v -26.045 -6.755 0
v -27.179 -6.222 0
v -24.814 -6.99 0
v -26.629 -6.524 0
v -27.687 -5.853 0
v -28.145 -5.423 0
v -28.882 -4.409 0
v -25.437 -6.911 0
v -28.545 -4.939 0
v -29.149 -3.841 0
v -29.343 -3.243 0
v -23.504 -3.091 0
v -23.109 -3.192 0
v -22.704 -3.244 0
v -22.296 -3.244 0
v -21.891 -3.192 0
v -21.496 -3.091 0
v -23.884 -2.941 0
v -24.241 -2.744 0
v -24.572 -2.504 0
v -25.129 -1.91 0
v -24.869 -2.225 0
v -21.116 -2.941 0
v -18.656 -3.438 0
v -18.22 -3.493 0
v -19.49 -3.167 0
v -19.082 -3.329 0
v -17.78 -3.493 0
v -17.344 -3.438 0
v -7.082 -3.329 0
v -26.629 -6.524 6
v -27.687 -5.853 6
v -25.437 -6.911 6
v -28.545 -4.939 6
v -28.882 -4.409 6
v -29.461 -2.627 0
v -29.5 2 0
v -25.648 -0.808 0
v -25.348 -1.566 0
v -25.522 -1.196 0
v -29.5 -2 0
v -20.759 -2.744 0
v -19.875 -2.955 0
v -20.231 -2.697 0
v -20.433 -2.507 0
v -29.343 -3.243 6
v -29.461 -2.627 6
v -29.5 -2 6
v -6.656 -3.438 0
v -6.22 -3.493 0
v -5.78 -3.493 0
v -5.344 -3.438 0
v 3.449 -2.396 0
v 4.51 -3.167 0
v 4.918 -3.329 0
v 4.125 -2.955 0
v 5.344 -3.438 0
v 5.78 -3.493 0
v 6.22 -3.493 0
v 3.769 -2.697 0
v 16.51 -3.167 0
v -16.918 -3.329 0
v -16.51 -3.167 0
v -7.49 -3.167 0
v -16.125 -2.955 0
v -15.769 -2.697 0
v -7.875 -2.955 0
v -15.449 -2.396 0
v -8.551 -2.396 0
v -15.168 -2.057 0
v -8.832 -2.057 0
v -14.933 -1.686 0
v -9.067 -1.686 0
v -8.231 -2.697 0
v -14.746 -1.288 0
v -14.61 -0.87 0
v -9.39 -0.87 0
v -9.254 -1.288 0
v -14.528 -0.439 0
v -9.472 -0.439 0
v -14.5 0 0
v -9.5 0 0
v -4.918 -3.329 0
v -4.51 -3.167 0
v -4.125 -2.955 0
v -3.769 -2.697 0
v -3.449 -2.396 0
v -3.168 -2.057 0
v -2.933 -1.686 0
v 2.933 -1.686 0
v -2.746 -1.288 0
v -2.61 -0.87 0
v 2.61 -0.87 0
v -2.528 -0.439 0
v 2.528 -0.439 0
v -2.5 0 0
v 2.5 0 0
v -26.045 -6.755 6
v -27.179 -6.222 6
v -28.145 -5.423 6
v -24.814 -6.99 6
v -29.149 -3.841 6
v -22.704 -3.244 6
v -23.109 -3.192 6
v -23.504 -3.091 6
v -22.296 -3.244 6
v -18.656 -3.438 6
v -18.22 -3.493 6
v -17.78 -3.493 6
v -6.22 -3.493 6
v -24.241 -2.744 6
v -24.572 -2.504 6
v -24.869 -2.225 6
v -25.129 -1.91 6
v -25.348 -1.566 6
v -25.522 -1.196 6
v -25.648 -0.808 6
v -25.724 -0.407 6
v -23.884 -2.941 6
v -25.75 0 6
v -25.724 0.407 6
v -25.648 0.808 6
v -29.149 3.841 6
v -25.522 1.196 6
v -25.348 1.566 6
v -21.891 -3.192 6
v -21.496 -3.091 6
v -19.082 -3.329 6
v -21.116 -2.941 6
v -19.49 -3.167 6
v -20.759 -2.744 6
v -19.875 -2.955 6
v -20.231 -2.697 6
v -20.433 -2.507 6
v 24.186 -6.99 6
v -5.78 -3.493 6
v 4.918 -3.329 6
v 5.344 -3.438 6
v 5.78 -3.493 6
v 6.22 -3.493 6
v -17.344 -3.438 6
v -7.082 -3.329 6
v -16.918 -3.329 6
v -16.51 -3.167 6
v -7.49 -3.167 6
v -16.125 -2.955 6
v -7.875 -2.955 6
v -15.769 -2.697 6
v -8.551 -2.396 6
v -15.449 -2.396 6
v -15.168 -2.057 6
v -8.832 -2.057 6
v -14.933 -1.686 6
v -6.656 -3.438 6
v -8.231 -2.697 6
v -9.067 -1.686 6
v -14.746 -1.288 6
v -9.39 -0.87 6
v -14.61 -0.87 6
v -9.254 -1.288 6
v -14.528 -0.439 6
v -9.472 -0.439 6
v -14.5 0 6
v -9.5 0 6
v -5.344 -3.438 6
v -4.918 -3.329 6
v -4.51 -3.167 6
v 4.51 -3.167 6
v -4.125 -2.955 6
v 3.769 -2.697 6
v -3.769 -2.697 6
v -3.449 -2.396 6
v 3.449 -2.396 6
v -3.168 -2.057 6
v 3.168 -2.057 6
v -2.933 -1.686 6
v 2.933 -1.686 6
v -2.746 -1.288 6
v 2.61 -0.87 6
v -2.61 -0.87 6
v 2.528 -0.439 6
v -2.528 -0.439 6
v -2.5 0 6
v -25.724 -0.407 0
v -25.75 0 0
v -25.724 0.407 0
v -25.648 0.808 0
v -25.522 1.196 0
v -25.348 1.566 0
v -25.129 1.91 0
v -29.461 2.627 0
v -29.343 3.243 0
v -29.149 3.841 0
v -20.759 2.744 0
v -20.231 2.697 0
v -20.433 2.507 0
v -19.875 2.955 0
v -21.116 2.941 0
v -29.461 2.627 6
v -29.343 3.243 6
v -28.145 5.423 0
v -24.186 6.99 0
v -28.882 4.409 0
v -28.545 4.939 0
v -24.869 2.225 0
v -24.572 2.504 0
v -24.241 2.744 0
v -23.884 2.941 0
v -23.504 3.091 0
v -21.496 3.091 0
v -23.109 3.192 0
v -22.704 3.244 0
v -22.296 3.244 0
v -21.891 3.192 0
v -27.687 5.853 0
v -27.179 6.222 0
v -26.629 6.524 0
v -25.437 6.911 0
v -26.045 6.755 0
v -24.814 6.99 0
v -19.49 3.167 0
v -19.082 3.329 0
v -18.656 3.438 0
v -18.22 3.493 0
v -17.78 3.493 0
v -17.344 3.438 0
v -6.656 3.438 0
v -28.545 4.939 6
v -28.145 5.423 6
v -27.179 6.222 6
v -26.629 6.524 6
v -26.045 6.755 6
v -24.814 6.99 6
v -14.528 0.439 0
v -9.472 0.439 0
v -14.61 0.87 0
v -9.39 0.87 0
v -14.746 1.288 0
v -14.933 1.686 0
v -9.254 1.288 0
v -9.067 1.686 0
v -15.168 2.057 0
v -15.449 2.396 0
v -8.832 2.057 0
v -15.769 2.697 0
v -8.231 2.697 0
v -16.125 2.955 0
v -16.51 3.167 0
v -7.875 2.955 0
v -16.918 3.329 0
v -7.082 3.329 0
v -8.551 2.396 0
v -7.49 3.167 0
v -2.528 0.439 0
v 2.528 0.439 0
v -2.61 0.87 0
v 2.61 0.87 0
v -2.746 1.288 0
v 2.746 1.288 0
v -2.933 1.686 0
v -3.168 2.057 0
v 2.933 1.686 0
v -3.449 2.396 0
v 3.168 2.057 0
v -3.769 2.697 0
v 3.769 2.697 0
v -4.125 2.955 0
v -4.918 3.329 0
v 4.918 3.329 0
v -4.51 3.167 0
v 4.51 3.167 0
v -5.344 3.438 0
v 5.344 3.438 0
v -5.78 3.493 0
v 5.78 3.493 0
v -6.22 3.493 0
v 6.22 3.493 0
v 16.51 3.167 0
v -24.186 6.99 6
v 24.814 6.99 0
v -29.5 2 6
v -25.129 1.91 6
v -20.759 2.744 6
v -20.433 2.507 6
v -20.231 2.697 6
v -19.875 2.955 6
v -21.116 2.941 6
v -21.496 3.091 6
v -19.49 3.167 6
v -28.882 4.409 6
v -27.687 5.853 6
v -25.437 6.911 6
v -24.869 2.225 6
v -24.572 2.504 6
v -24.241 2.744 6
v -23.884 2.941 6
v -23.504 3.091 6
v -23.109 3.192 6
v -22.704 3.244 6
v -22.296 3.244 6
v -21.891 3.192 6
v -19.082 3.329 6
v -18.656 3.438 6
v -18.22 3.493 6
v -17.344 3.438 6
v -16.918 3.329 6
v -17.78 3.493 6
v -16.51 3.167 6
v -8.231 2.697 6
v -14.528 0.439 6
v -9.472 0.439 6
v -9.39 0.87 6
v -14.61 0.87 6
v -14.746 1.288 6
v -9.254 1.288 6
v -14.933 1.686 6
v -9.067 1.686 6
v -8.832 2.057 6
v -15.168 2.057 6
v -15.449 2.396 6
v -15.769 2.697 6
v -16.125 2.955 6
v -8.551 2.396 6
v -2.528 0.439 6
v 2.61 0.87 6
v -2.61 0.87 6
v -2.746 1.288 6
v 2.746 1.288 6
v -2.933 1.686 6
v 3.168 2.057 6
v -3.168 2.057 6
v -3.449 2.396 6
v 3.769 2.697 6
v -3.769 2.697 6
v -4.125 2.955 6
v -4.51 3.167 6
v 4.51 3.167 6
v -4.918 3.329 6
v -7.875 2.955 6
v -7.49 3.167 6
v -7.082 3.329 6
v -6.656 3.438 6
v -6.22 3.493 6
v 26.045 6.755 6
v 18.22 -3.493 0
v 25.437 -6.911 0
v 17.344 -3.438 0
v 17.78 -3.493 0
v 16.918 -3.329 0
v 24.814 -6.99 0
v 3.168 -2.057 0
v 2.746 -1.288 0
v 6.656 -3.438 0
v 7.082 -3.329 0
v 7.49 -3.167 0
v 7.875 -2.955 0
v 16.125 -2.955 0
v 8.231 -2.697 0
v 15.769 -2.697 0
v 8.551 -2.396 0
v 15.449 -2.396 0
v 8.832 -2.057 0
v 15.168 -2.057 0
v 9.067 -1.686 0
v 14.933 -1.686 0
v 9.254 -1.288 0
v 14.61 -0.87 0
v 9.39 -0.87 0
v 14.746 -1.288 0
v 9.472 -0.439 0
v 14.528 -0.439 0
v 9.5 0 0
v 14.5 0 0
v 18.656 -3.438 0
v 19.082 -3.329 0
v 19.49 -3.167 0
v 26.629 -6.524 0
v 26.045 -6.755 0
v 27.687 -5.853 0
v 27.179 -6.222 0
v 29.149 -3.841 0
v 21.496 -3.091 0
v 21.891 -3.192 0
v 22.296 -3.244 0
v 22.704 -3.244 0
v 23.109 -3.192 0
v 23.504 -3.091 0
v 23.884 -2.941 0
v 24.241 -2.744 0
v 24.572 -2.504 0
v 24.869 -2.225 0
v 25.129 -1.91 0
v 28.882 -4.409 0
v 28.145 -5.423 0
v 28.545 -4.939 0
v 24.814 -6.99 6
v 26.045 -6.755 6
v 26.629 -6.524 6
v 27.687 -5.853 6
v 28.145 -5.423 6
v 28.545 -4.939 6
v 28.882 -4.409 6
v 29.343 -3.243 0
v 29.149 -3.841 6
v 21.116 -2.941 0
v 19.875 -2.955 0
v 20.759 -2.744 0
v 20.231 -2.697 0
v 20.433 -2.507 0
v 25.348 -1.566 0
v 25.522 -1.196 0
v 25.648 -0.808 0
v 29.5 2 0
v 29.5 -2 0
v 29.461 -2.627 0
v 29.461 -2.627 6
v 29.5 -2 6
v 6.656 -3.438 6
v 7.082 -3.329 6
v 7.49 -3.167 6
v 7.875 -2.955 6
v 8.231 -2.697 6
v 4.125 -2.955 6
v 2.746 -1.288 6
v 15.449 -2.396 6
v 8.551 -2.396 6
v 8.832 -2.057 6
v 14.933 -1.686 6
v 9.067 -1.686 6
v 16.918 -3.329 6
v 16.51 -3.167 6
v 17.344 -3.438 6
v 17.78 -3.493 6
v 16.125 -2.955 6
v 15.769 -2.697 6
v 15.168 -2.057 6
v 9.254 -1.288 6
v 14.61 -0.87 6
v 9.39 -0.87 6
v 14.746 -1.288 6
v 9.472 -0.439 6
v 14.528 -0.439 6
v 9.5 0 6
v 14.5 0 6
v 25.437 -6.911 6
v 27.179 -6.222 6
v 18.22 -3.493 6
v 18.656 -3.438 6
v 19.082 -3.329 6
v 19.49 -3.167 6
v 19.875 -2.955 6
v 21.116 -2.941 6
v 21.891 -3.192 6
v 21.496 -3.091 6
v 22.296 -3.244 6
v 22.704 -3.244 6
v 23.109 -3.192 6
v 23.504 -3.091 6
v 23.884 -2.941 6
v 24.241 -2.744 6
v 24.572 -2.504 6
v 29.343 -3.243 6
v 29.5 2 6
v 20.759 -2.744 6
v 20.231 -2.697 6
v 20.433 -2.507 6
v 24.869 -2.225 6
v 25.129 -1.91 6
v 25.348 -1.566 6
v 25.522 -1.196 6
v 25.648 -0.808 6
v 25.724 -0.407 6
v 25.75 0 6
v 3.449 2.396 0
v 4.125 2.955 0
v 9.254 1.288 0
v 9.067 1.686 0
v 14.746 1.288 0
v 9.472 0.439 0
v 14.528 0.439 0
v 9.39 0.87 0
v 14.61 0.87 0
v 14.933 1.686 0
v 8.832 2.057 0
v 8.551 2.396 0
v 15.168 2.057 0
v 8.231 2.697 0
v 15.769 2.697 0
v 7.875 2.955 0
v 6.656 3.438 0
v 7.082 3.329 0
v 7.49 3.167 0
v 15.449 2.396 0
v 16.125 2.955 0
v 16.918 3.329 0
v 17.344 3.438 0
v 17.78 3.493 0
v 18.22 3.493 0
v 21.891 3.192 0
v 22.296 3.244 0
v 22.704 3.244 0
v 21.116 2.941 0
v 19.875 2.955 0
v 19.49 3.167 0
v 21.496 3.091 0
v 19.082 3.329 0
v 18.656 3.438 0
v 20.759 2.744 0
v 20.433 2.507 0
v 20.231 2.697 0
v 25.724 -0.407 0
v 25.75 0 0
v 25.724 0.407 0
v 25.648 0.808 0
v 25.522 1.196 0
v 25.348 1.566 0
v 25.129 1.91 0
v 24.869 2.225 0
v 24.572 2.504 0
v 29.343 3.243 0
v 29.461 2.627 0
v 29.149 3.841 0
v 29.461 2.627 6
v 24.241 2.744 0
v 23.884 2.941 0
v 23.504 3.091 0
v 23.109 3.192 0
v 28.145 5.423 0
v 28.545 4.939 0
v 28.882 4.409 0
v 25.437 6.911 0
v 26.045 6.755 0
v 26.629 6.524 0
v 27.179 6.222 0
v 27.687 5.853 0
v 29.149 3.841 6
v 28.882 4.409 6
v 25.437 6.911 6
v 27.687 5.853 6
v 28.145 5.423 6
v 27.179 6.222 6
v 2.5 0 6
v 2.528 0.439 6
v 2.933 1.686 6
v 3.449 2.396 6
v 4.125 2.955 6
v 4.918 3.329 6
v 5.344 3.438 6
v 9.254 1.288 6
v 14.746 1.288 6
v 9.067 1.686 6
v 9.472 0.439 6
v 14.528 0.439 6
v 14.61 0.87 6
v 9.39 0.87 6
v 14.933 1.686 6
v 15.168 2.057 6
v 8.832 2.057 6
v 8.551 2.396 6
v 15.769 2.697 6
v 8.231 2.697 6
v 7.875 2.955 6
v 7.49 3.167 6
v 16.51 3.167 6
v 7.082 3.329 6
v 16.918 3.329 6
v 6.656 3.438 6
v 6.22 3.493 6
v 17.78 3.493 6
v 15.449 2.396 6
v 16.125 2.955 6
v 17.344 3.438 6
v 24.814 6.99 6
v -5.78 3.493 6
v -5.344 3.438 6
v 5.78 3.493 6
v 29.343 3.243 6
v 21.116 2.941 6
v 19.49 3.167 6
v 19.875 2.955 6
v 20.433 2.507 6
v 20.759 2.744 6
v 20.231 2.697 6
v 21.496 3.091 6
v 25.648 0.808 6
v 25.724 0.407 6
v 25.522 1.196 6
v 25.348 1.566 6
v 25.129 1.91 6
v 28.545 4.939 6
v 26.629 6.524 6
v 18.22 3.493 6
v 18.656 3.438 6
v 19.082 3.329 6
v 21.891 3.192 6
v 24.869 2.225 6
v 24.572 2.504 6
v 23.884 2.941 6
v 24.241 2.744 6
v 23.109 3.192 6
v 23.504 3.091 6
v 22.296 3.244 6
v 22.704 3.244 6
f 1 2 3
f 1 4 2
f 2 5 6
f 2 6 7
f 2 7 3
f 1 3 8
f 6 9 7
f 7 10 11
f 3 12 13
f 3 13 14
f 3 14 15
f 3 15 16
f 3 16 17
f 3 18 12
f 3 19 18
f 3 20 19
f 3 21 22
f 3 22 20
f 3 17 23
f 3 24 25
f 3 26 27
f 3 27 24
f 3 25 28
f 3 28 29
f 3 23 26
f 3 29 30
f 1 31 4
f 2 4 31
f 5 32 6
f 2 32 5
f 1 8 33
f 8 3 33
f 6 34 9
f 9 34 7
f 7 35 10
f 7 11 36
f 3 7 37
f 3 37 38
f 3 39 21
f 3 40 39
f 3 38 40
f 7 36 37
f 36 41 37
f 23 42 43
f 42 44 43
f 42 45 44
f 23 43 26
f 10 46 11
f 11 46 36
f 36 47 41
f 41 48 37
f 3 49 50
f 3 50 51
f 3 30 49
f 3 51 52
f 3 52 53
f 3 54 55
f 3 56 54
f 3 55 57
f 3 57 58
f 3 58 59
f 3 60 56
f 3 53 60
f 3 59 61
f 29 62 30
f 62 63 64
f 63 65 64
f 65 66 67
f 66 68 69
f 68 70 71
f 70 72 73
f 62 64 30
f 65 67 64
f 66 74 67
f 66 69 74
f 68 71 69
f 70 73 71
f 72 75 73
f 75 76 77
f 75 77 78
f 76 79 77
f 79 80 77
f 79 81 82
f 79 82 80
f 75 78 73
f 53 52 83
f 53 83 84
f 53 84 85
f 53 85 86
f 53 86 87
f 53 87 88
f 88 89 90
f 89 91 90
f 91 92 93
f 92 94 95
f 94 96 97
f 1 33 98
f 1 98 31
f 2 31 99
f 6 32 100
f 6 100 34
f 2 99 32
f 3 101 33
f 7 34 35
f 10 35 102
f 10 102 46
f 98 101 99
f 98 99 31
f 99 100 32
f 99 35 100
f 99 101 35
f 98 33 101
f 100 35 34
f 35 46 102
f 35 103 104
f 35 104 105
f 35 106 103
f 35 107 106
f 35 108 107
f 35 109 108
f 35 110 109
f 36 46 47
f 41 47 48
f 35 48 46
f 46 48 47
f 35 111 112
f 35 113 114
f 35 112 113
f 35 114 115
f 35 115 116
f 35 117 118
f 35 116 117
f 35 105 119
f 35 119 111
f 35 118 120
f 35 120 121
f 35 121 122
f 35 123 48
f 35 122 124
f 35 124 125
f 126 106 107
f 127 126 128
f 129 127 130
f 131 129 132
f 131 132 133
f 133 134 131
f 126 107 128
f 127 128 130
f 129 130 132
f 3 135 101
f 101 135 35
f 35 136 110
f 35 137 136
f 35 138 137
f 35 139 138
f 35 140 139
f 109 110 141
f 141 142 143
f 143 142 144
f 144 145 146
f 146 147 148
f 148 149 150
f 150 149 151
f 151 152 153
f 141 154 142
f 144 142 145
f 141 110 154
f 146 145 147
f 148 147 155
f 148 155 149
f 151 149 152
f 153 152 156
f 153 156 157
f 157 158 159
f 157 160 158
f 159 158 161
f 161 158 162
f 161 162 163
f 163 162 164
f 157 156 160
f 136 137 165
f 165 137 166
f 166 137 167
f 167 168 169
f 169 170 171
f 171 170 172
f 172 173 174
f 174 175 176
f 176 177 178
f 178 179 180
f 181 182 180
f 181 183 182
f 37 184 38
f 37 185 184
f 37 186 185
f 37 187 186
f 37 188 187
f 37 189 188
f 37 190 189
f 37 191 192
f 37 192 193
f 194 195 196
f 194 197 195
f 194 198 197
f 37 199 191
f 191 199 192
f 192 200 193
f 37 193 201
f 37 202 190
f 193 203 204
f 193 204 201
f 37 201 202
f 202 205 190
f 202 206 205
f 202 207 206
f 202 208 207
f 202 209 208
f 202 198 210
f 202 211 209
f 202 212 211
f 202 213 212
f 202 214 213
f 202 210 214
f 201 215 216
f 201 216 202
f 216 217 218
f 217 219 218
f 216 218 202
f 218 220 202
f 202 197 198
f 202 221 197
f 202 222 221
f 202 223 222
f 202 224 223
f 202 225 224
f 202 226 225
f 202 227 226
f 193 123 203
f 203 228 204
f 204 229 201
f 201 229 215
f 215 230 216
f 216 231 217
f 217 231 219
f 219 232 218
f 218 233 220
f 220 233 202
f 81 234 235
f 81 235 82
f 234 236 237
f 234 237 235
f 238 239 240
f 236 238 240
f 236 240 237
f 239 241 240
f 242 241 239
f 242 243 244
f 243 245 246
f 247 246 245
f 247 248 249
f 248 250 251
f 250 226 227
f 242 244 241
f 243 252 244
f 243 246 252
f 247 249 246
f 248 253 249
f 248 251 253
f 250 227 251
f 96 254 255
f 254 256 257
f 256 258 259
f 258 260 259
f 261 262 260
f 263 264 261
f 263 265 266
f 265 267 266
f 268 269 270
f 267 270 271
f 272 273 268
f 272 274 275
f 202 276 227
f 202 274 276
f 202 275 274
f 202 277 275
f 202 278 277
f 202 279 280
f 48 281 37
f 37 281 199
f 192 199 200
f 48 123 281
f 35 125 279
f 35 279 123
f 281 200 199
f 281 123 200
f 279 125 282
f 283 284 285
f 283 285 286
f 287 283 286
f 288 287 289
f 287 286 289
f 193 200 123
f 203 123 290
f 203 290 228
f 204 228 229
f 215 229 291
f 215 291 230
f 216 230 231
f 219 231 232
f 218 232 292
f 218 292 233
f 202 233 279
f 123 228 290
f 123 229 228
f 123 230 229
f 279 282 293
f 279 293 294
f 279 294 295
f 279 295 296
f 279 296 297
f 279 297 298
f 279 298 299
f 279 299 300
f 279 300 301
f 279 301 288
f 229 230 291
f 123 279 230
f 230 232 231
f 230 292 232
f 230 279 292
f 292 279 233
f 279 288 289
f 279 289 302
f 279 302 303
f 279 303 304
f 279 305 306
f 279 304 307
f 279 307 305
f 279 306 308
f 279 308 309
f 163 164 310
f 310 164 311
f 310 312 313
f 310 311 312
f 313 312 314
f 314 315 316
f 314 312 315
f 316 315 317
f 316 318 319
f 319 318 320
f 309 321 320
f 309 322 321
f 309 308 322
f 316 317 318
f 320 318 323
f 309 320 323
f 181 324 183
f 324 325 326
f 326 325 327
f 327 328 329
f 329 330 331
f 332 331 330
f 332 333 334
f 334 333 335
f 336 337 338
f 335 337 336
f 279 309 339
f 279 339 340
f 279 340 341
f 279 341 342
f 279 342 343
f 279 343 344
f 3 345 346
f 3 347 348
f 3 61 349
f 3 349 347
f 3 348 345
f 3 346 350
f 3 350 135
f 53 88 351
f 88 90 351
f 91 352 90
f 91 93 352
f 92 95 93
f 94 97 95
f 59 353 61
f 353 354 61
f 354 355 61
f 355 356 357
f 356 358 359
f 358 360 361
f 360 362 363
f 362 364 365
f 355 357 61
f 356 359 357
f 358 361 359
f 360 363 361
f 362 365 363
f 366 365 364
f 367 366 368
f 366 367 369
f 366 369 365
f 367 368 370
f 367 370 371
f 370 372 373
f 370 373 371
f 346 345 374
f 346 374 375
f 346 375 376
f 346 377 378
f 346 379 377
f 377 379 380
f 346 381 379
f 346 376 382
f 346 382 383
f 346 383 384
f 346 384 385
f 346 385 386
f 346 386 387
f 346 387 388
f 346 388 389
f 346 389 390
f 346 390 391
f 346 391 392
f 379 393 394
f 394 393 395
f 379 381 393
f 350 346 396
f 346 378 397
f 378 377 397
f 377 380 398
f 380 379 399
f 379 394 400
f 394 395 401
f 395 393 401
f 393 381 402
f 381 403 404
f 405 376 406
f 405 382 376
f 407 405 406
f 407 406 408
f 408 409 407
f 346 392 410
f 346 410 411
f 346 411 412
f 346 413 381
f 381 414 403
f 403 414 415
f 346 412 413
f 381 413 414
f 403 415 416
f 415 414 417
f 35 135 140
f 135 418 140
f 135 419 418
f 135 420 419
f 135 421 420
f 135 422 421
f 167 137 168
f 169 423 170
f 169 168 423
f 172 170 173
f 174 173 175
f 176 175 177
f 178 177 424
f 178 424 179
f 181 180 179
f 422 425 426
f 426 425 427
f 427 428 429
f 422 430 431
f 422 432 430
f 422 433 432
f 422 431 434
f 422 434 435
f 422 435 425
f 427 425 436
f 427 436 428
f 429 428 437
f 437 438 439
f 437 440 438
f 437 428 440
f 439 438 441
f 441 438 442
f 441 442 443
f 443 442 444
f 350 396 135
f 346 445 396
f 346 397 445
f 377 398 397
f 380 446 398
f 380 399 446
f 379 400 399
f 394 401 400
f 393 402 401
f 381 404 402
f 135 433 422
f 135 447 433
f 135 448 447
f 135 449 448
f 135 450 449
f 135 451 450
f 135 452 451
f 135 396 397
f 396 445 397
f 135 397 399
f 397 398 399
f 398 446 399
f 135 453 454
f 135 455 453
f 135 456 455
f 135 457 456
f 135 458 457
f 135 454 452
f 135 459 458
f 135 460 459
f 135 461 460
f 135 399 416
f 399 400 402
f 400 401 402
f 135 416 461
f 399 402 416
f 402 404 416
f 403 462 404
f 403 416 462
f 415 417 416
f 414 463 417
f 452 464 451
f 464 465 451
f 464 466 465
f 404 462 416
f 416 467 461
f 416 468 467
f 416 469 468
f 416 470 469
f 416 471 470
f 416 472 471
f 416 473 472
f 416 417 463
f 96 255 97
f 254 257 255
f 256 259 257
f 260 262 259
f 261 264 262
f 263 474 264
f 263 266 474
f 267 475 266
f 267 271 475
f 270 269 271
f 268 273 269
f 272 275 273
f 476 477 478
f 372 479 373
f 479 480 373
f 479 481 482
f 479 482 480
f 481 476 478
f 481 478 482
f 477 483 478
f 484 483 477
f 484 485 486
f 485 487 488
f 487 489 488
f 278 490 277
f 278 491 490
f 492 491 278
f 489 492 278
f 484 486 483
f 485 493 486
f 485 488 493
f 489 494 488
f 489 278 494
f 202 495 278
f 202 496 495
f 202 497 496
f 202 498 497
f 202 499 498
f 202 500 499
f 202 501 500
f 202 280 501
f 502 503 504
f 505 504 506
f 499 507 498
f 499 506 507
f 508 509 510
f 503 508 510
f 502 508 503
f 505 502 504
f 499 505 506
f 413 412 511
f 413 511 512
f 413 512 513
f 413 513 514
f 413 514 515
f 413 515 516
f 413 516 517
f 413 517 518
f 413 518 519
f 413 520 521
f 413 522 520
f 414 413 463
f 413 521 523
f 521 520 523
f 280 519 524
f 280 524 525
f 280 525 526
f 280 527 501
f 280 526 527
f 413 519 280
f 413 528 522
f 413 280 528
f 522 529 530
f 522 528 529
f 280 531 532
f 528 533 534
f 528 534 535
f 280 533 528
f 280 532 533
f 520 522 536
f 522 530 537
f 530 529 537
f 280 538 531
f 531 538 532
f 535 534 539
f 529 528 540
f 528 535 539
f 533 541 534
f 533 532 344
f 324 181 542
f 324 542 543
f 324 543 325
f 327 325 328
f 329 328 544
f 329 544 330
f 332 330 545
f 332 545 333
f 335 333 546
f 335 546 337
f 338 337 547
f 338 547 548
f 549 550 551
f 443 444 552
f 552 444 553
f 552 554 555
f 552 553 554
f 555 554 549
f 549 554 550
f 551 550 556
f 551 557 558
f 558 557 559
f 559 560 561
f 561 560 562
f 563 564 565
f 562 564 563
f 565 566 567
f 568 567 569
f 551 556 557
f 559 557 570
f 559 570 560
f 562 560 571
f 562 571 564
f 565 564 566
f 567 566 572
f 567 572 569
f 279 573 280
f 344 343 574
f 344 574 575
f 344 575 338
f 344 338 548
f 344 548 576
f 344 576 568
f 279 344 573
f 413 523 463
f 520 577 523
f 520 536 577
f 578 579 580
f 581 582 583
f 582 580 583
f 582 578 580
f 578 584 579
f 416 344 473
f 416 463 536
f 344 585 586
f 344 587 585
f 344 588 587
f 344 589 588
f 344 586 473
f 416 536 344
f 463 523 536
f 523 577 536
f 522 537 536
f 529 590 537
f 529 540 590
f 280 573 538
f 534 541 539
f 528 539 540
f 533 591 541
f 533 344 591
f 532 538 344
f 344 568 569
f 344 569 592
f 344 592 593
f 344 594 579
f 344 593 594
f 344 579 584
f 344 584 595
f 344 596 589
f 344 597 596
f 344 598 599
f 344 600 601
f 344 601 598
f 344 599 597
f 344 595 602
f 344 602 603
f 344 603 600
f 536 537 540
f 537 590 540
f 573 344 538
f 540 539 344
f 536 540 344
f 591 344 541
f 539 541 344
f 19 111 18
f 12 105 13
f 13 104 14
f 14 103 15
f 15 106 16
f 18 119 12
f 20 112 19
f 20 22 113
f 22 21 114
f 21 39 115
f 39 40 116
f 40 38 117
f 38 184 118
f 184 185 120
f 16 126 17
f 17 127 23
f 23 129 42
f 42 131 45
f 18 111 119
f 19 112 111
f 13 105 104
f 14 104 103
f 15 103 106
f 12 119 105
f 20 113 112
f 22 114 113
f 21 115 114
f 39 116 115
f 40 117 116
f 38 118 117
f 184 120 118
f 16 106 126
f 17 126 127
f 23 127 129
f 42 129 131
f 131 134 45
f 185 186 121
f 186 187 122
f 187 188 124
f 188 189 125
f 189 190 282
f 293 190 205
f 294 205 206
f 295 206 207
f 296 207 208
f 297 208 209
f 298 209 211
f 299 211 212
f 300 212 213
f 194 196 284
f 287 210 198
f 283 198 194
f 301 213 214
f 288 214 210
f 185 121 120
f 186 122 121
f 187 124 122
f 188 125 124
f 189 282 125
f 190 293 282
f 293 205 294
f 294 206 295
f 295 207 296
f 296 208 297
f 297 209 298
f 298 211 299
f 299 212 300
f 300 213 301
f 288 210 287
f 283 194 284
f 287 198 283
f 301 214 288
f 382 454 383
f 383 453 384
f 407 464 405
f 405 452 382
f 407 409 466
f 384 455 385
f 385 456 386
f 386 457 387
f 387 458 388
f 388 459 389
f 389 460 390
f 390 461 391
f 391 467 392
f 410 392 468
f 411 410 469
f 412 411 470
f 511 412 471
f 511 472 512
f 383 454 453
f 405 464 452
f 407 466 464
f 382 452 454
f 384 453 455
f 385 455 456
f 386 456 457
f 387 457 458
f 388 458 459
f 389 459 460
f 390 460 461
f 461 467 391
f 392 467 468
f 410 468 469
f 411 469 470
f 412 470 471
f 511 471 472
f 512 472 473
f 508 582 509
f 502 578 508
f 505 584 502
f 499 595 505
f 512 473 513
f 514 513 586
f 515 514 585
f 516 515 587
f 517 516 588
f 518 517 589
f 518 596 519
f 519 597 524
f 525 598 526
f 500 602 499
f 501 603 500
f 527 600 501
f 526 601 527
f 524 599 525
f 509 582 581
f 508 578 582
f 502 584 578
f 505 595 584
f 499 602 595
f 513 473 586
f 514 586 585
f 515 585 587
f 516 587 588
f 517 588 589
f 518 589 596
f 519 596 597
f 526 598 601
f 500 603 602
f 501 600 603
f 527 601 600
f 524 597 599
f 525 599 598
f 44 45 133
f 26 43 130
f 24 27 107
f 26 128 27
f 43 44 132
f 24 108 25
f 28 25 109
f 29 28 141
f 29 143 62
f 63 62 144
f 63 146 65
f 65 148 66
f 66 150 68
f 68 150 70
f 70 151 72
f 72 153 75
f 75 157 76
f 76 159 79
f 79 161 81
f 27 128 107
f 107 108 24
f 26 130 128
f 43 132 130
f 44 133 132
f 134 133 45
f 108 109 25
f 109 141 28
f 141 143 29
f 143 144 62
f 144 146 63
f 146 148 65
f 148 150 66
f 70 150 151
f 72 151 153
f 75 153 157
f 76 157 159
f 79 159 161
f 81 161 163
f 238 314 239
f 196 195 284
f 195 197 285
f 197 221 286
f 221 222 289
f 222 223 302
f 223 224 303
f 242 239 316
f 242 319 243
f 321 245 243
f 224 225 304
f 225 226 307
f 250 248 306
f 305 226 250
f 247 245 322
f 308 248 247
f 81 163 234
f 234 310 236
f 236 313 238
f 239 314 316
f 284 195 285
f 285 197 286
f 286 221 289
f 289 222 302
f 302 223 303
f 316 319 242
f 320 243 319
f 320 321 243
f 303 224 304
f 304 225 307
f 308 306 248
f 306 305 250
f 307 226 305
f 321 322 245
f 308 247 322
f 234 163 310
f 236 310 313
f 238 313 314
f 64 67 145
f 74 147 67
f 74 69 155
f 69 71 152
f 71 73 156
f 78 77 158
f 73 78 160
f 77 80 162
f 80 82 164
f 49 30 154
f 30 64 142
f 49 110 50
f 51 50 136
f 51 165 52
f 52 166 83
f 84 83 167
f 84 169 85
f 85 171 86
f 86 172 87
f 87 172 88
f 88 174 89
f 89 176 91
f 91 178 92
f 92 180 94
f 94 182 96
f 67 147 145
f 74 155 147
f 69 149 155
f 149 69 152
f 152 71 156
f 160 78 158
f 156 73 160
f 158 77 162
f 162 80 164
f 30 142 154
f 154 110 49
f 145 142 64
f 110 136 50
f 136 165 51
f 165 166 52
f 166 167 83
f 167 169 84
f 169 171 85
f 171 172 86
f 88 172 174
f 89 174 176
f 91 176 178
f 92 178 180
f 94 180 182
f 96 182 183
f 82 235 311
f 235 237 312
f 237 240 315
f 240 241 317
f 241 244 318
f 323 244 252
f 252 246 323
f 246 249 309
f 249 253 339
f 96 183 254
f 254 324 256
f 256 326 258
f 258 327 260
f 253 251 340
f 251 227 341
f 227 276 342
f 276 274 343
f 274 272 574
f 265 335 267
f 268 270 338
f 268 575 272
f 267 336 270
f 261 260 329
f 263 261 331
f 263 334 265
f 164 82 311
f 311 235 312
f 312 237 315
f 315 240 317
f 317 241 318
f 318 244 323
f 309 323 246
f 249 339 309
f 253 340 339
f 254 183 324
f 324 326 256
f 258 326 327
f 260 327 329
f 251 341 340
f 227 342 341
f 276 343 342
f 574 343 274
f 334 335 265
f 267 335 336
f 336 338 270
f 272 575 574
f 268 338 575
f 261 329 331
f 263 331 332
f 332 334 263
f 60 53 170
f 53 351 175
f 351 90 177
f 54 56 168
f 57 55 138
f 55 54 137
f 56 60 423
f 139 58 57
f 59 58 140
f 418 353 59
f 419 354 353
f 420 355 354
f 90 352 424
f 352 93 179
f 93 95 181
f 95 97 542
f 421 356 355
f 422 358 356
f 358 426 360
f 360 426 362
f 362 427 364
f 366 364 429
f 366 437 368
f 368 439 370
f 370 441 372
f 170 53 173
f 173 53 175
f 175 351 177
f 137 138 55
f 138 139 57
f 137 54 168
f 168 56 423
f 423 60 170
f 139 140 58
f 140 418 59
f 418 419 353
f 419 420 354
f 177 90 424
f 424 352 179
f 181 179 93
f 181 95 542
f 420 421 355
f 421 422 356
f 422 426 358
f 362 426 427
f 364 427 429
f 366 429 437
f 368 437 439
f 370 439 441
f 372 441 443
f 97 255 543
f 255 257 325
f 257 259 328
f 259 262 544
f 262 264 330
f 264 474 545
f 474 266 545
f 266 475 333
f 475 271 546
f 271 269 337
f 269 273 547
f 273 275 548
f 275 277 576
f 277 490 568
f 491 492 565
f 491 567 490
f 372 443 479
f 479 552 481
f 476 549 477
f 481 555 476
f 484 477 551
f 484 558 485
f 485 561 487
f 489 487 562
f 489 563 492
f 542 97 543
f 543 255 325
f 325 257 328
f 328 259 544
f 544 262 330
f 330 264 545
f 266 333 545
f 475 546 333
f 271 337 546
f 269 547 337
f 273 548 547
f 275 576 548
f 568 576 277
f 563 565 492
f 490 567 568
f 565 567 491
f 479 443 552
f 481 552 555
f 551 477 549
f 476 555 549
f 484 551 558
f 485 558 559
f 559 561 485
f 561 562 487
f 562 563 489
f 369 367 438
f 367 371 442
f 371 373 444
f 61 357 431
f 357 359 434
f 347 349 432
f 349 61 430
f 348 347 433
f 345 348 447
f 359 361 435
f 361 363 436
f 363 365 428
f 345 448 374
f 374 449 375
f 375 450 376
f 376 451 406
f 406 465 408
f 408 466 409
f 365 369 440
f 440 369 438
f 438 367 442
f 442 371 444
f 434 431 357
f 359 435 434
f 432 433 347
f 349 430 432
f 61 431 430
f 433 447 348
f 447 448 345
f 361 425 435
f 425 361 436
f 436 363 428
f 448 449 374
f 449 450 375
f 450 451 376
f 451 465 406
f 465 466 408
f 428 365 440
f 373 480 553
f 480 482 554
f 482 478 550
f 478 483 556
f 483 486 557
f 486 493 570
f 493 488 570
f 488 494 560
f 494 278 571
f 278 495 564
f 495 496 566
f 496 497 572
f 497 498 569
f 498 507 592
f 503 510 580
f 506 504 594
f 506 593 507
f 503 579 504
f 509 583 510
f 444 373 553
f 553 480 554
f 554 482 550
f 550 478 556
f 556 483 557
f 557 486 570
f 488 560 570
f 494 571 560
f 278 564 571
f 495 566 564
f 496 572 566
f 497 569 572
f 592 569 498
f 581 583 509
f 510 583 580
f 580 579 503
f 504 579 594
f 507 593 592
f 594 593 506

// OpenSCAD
$fn = 50;

difference() {
	union() {
		hull() {
			translate(v = [-24.5, 2.0, 0]) {
				cylinder(h = 6, r = 5);
			}
			translate(v = [24.5, 2.0, 0]) {
				cylinder(h = 6, r = 5);
			}
			translate(v = [-24.5, -2.0, 0]) {
				cylinder(h = 6, r = 5);
			}
			translate(v = [24.5, -2.0, 0]) {
				cylinder(h = 6, r = 5);
			}
		}
	}
	union() {
		translate(v = [-22.5, 0.0, -100.0]) {
			cylinder(h = 200, r = 3.25);
		}
		translate(v = [22.5, 0.0, -100.0]) {
			cylinder(h = 200, r = 3.25);
		}
		translate(v = [-22.5, 0.0, -100.0]) {
			cylinder(h = 200, r = 1.8);
		}
		translate(v = [22.5, 0.0, -100.0]) {
			cylinder(h = 200, r = 1.8);
		}
		translate(v = [-18.0, 0, 0.0]) {
			cylinder(h = 6, r = 3.5);
		}
		translate(v = [-6.0, 0, 0.0]) {
			cylinder(h = 6, r = 3.5);
		}
		translate(v = [6.0, 0, 0.0]) {
			cylinder(h = 6, r = 3.5);
		}
		translate(v = [18.0, 0, 0.0]) {
			cylinder(h = 6, r = 3.5);
		}
	}
}
